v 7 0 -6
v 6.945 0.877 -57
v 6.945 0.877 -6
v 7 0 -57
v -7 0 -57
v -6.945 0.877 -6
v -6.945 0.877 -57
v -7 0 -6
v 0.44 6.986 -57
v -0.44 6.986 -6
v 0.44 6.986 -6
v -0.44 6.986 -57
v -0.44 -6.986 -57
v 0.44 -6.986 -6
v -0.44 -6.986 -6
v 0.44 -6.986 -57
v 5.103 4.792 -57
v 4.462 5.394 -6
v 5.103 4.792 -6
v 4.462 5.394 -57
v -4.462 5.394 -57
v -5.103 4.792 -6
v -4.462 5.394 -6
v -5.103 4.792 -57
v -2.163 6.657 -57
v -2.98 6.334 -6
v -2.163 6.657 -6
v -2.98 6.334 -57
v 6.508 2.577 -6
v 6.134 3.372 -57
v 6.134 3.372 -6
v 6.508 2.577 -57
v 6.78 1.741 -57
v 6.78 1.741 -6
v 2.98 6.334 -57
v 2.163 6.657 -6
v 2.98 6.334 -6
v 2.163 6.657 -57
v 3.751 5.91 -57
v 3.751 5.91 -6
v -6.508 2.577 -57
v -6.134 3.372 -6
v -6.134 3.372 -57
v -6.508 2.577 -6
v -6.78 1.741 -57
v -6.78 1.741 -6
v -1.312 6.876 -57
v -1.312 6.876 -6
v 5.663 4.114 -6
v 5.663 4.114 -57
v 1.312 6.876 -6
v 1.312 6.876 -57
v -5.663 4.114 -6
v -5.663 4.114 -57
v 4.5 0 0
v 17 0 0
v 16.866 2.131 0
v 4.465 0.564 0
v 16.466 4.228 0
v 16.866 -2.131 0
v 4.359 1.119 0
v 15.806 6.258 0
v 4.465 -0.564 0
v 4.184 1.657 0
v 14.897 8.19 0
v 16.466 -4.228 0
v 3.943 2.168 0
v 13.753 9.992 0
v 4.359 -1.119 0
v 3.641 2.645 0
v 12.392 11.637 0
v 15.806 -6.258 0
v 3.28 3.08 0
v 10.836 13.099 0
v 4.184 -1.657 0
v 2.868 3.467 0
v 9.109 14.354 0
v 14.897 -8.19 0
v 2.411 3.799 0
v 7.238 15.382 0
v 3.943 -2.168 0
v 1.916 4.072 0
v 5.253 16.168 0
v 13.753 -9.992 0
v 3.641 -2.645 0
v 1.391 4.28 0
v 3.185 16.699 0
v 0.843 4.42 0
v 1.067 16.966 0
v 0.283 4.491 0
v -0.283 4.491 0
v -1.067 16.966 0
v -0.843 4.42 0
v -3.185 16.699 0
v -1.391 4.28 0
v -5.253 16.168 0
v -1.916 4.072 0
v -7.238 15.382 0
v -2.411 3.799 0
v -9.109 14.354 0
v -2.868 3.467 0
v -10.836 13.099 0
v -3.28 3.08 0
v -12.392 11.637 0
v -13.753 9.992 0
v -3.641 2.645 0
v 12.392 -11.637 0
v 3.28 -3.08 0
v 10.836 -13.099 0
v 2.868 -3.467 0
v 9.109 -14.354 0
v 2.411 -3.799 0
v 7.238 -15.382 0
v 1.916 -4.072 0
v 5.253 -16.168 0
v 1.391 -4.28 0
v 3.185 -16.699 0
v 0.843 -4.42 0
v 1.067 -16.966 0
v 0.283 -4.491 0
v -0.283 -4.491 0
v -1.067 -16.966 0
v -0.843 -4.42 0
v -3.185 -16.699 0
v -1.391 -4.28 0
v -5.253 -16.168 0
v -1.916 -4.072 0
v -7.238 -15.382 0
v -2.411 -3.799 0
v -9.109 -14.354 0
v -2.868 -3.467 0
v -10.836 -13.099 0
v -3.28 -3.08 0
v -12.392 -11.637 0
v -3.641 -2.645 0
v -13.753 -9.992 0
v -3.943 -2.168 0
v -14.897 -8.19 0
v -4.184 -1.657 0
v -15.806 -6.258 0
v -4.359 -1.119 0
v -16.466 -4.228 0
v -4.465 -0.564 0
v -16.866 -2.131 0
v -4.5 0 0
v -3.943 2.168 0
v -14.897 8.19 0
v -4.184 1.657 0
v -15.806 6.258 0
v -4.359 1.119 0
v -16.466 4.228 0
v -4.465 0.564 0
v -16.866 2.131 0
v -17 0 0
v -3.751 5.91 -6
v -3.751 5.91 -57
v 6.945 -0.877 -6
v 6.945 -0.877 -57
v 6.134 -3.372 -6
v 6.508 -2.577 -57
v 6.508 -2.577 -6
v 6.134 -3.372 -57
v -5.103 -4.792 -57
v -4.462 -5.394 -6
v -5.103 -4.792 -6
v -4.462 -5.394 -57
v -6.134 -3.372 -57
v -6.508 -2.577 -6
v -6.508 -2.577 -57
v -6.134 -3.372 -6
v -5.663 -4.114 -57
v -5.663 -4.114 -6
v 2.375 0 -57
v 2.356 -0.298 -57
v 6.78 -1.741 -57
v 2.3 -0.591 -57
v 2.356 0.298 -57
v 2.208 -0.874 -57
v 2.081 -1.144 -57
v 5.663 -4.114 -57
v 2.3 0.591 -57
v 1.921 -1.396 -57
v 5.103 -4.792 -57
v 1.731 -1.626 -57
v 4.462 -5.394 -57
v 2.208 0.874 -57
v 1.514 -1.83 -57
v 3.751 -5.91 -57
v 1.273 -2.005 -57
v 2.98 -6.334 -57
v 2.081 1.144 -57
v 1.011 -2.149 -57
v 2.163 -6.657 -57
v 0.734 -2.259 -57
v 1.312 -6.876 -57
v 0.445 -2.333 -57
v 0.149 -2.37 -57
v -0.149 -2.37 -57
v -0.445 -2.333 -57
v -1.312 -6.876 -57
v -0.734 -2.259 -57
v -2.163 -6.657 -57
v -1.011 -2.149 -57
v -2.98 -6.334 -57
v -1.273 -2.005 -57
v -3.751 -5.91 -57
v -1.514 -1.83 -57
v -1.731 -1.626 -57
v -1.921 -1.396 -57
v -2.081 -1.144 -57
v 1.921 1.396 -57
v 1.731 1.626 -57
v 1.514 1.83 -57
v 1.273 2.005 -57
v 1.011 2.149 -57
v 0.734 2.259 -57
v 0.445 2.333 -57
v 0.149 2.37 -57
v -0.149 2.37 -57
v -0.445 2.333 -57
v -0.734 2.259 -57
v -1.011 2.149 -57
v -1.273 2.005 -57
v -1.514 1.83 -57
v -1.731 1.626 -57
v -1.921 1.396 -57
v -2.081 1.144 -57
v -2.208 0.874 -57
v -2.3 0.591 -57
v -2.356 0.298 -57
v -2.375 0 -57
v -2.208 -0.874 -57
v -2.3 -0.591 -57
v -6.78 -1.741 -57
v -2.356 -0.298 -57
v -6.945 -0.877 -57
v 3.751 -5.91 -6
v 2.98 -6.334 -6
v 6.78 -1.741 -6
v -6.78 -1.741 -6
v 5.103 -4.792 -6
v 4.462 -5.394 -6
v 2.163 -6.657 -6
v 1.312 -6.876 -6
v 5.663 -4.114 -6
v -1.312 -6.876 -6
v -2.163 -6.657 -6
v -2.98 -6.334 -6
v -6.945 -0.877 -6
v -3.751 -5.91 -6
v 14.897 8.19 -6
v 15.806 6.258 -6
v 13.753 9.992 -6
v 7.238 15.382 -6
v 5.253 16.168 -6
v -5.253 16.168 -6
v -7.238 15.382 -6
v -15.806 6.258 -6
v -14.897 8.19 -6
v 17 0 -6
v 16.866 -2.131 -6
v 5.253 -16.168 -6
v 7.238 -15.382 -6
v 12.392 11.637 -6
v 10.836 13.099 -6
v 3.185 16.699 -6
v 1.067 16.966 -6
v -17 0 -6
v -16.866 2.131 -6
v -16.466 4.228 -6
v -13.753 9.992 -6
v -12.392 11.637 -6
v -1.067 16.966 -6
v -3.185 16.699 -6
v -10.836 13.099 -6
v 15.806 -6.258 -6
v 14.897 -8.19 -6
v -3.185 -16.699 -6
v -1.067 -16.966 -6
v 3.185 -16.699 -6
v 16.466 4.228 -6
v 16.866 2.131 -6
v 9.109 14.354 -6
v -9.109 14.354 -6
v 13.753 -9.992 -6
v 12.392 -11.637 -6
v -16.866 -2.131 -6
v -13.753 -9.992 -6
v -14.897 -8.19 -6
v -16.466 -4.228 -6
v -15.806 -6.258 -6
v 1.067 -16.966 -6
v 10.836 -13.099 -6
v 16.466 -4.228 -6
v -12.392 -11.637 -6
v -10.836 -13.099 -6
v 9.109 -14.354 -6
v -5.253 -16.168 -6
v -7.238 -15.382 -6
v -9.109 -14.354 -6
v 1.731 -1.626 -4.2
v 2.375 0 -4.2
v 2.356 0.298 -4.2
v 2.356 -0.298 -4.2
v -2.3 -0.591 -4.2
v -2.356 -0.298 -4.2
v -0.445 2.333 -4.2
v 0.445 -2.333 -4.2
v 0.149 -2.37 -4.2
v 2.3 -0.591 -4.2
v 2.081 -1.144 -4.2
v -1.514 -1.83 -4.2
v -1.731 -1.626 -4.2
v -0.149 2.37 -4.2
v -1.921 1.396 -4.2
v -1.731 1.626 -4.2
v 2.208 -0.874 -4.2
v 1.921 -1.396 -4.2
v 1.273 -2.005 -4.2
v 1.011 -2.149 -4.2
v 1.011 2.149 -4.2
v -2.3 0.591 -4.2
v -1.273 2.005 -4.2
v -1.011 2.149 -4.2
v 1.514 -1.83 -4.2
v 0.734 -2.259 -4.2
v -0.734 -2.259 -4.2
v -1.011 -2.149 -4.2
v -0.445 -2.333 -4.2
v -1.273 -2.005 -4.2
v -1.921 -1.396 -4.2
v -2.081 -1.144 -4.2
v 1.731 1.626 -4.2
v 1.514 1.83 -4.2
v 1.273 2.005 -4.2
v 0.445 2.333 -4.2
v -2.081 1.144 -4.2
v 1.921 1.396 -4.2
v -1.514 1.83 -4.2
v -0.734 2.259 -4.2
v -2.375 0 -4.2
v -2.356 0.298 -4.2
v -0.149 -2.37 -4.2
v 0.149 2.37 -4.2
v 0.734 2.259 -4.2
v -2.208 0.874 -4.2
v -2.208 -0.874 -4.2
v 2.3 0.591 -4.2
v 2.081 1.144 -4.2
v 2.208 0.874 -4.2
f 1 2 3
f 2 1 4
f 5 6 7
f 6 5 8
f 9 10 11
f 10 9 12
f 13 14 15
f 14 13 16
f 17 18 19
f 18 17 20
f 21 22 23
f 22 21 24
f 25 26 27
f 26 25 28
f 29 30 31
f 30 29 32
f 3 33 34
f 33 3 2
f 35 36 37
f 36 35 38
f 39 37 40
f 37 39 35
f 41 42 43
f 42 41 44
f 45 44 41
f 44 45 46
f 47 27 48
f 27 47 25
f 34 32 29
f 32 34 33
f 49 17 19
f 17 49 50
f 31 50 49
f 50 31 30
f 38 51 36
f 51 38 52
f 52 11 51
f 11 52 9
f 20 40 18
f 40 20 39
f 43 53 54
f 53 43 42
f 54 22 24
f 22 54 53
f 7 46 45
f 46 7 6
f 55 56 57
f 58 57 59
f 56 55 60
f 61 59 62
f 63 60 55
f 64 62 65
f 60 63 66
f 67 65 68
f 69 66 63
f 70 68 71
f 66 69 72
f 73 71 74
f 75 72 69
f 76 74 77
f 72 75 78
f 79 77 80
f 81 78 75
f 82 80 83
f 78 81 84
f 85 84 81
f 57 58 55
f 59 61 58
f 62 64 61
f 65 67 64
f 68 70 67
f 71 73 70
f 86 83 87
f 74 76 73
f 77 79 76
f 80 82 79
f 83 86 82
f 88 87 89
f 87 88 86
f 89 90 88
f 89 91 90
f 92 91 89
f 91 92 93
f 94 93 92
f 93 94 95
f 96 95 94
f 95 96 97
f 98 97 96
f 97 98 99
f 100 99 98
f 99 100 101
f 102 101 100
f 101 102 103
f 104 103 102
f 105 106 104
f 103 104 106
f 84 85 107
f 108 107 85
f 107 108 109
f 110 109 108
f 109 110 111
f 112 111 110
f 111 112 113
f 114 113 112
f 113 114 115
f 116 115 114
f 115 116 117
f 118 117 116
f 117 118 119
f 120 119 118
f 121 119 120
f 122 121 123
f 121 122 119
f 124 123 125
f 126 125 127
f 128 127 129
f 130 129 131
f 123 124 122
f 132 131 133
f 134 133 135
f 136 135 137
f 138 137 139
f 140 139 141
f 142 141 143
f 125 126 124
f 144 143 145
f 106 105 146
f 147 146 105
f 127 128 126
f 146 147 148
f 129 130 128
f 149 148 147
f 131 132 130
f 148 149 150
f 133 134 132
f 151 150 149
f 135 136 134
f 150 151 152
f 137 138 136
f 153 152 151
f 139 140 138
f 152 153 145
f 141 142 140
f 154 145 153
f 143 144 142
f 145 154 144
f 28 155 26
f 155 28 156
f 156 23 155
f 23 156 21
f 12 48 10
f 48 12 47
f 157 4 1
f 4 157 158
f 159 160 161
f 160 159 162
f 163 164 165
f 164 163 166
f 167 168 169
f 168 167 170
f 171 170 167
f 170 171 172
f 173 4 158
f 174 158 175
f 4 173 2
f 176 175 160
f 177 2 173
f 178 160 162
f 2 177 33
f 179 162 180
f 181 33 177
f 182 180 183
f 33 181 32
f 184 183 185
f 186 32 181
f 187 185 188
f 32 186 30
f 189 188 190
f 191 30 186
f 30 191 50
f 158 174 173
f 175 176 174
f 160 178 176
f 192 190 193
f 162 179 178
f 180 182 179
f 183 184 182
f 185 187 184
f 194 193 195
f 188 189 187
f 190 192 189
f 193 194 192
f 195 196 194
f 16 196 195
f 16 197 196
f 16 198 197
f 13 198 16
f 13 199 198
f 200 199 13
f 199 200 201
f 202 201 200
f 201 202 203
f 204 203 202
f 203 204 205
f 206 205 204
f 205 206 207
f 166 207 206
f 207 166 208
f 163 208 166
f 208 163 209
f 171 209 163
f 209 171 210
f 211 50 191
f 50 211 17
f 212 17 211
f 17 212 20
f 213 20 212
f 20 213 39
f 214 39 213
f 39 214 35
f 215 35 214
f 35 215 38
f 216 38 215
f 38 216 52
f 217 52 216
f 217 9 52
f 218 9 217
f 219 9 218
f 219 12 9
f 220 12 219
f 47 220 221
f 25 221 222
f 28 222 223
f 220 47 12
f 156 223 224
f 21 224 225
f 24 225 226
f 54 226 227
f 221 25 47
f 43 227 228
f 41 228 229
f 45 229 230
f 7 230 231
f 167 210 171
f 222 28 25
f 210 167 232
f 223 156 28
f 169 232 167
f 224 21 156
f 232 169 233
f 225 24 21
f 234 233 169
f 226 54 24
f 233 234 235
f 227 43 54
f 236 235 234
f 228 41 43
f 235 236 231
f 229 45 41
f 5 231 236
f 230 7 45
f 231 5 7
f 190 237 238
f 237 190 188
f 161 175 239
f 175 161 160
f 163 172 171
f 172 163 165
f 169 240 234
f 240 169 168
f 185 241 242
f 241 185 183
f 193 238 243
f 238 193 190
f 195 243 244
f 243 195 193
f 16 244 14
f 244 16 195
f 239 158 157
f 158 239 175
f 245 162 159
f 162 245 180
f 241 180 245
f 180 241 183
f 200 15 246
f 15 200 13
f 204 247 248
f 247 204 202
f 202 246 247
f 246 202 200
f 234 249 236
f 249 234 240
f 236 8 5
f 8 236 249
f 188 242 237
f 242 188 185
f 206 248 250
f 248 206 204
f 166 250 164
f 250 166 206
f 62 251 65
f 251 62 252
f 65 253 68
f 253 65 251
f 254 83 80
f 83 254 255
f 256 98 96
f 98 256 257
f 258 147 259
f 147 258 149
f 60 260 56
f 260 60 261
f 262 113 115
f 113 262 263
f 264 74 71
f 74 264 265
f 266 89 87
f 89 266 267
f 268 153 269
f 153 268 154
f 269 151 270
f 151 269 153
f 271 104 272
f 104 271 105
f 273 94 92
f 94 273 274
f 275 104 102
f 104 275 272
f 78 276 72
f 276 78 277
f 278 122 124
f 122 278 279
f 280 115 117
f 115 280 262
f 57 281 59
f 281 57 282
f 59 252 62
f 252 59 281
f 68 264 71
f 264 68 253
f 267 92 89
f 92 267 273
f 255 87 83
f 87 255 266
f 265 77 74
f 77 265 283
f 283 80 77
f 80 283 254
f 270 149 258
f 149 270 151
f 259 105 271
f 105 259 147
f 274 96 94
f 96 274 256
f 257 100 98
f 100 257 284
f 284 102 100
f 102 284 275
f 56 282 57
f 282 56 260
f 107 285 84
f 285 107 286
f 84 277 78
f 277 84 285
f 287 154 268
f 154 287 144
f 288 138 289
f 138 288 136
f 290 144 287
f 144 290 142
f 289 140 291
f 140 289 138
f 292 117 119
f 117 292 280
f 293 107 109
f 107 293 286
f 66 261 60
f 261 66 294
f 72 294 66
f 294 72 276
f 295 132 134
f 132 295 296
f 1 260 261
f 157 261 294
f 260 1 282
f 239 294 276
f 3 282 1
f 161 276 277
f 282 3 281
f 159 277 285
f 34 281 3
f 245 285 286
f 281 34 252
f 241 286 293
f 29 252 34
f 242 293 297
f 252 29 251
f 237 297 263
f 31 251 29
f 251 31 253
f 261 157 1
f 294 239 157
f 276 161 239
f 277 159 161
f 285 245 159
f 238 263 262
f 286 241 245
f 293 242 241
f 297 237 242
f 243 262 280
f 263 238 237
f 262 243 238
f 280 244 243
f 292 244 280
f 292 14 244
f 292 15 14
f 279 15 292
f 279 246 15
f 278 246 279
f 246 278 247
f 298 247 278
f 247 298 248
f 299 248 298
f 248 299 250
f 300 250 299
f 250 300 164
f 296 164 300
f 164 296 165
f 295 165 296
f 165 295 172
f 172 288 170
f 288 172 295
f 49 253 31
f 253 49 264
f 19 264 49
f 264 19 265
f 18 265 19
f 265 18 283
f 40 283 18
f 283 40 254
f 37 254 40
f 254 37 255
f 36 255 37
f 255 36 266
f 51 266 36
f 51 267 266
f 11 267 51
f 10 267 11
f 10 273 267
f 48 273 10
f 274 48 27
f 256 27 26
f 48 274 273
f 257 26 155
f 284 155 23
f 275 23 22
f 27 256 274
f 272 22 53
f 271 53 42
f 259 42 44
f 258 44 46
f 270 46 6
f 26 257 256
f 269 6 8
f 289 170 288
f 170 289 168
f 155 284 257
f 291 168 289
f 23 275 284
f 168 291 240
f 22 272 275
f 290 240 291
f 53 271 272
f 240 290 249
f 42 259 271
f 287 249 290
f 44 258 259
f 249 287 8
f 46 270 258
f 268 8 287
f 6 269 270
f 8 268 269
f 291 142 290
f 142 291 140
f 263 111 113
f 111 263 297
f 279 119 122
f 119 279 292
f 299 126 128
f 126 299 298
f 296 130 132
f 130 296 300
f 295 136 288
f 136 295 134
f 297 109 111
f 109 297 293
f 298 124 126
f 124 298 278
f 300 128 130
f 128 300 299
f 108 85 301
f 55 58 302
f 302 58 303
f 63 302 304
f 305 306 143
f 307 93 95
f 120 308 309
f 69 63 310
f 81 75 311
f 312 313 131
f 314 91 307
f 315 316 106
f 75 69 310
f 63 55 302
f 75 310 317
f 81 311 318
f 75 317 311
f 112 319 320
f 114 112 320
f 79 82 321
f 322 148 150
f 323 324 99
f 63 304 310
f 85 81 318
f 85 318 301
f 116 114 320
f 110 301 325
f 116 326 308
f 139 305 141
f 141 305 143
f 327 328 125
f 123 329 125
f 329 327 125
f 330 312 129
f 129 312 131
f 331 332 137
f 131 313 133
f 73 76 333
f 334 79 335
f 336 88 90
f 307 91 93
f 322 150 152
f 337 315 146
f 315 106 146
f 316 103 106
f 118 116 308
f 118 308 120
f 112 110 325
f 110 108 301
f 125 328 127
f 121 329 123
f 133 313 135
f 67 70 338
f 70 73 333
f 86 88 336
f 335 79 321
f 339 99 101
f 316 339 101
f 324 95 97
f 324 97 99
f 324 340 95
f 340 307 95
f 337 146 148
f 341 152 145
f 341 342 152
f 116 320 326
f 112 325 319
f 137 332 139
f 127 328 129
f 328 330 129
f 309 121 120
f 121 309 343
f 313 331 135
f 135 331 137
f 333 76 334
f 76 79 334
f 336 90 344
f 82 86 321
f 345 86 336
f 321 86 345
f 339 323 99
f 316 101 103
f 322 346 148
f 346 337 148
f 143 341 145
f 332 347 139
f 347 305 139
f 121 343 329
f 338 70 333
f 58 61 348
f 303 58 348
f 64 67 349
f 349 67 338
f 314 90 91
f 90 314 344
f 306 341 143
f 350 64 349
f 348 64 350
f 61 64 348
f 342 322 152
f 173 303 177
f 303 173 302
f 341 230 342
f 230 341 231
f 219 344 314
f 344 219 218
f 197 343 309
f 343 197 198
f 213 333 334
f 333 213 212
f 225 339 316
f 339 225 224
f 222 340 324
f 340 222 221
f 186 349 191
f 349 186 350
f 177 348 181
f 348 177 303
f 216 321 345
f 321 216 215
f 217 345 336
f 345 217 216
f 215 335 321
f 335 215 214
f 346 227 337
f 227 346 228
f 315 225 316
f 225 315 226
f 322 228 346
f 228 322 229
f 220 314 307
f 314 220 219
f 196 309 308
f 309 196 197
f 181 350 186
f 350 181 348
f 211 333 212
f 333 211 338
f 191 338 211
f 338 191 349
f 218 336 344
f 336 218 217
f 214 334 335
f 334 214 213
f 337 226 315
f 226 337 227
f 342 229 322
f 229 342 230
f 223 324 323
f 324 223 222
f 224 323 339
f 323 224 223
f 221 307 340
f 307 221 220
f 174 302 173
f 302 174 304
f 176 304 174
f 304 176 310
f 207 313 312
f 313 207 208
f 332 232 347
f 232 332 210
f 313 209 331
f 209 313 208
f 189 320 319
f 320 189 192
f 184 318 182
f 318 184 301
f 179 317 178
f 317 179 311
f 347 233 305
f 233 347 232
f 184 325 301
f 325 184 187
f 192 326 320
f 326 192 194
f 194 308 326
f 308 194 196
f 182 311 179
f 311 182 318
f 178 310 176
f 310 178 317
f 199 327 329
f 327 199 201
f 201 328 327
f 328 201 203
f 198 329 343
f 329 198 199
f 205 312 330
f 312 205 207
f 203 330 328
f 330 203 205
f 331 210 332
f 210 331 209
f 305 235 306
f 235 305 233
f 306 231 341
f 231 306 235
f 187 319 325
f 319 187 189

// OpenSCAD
$fn = 50;


difference() {
	union() {
		translate(v = [0, 0, -57.0000000000]) {
			cylinder(h = 57, r = 7.0000000000);
		}
		translate(v = [0, 0, -6.0000000000]) {
			cylinder(h = 6, r = 17.0000000000);
		}
	}
	union() {
		translate(v = [0, 0, 0]) {
			rotate(a = [0, 0, 0]) {
				difference() {
					union() {
						#translate(v = [0, 0, -57.0000000000]) {
							cylinder(h = 57, r = 2.2500000000);
						}
						#translate(v = [0, 0, -4.2000000000]) {
							cylinder(h = 4.2000000000, r = 7.0000000000, r1 = 2.3750000000, r2 = 4.5000000000);
						}
						#translate(v = [0, 0, -57.0000000000]) {
							cylinder(h = 57, r = 2.3750000000);
						}
						#translate(v = [0, 0, -57.0000000000]) {
							cylinder(h = 57, r = 2.2500000000);
						}
					}
					union();
				}
			}
		}
	}
}
